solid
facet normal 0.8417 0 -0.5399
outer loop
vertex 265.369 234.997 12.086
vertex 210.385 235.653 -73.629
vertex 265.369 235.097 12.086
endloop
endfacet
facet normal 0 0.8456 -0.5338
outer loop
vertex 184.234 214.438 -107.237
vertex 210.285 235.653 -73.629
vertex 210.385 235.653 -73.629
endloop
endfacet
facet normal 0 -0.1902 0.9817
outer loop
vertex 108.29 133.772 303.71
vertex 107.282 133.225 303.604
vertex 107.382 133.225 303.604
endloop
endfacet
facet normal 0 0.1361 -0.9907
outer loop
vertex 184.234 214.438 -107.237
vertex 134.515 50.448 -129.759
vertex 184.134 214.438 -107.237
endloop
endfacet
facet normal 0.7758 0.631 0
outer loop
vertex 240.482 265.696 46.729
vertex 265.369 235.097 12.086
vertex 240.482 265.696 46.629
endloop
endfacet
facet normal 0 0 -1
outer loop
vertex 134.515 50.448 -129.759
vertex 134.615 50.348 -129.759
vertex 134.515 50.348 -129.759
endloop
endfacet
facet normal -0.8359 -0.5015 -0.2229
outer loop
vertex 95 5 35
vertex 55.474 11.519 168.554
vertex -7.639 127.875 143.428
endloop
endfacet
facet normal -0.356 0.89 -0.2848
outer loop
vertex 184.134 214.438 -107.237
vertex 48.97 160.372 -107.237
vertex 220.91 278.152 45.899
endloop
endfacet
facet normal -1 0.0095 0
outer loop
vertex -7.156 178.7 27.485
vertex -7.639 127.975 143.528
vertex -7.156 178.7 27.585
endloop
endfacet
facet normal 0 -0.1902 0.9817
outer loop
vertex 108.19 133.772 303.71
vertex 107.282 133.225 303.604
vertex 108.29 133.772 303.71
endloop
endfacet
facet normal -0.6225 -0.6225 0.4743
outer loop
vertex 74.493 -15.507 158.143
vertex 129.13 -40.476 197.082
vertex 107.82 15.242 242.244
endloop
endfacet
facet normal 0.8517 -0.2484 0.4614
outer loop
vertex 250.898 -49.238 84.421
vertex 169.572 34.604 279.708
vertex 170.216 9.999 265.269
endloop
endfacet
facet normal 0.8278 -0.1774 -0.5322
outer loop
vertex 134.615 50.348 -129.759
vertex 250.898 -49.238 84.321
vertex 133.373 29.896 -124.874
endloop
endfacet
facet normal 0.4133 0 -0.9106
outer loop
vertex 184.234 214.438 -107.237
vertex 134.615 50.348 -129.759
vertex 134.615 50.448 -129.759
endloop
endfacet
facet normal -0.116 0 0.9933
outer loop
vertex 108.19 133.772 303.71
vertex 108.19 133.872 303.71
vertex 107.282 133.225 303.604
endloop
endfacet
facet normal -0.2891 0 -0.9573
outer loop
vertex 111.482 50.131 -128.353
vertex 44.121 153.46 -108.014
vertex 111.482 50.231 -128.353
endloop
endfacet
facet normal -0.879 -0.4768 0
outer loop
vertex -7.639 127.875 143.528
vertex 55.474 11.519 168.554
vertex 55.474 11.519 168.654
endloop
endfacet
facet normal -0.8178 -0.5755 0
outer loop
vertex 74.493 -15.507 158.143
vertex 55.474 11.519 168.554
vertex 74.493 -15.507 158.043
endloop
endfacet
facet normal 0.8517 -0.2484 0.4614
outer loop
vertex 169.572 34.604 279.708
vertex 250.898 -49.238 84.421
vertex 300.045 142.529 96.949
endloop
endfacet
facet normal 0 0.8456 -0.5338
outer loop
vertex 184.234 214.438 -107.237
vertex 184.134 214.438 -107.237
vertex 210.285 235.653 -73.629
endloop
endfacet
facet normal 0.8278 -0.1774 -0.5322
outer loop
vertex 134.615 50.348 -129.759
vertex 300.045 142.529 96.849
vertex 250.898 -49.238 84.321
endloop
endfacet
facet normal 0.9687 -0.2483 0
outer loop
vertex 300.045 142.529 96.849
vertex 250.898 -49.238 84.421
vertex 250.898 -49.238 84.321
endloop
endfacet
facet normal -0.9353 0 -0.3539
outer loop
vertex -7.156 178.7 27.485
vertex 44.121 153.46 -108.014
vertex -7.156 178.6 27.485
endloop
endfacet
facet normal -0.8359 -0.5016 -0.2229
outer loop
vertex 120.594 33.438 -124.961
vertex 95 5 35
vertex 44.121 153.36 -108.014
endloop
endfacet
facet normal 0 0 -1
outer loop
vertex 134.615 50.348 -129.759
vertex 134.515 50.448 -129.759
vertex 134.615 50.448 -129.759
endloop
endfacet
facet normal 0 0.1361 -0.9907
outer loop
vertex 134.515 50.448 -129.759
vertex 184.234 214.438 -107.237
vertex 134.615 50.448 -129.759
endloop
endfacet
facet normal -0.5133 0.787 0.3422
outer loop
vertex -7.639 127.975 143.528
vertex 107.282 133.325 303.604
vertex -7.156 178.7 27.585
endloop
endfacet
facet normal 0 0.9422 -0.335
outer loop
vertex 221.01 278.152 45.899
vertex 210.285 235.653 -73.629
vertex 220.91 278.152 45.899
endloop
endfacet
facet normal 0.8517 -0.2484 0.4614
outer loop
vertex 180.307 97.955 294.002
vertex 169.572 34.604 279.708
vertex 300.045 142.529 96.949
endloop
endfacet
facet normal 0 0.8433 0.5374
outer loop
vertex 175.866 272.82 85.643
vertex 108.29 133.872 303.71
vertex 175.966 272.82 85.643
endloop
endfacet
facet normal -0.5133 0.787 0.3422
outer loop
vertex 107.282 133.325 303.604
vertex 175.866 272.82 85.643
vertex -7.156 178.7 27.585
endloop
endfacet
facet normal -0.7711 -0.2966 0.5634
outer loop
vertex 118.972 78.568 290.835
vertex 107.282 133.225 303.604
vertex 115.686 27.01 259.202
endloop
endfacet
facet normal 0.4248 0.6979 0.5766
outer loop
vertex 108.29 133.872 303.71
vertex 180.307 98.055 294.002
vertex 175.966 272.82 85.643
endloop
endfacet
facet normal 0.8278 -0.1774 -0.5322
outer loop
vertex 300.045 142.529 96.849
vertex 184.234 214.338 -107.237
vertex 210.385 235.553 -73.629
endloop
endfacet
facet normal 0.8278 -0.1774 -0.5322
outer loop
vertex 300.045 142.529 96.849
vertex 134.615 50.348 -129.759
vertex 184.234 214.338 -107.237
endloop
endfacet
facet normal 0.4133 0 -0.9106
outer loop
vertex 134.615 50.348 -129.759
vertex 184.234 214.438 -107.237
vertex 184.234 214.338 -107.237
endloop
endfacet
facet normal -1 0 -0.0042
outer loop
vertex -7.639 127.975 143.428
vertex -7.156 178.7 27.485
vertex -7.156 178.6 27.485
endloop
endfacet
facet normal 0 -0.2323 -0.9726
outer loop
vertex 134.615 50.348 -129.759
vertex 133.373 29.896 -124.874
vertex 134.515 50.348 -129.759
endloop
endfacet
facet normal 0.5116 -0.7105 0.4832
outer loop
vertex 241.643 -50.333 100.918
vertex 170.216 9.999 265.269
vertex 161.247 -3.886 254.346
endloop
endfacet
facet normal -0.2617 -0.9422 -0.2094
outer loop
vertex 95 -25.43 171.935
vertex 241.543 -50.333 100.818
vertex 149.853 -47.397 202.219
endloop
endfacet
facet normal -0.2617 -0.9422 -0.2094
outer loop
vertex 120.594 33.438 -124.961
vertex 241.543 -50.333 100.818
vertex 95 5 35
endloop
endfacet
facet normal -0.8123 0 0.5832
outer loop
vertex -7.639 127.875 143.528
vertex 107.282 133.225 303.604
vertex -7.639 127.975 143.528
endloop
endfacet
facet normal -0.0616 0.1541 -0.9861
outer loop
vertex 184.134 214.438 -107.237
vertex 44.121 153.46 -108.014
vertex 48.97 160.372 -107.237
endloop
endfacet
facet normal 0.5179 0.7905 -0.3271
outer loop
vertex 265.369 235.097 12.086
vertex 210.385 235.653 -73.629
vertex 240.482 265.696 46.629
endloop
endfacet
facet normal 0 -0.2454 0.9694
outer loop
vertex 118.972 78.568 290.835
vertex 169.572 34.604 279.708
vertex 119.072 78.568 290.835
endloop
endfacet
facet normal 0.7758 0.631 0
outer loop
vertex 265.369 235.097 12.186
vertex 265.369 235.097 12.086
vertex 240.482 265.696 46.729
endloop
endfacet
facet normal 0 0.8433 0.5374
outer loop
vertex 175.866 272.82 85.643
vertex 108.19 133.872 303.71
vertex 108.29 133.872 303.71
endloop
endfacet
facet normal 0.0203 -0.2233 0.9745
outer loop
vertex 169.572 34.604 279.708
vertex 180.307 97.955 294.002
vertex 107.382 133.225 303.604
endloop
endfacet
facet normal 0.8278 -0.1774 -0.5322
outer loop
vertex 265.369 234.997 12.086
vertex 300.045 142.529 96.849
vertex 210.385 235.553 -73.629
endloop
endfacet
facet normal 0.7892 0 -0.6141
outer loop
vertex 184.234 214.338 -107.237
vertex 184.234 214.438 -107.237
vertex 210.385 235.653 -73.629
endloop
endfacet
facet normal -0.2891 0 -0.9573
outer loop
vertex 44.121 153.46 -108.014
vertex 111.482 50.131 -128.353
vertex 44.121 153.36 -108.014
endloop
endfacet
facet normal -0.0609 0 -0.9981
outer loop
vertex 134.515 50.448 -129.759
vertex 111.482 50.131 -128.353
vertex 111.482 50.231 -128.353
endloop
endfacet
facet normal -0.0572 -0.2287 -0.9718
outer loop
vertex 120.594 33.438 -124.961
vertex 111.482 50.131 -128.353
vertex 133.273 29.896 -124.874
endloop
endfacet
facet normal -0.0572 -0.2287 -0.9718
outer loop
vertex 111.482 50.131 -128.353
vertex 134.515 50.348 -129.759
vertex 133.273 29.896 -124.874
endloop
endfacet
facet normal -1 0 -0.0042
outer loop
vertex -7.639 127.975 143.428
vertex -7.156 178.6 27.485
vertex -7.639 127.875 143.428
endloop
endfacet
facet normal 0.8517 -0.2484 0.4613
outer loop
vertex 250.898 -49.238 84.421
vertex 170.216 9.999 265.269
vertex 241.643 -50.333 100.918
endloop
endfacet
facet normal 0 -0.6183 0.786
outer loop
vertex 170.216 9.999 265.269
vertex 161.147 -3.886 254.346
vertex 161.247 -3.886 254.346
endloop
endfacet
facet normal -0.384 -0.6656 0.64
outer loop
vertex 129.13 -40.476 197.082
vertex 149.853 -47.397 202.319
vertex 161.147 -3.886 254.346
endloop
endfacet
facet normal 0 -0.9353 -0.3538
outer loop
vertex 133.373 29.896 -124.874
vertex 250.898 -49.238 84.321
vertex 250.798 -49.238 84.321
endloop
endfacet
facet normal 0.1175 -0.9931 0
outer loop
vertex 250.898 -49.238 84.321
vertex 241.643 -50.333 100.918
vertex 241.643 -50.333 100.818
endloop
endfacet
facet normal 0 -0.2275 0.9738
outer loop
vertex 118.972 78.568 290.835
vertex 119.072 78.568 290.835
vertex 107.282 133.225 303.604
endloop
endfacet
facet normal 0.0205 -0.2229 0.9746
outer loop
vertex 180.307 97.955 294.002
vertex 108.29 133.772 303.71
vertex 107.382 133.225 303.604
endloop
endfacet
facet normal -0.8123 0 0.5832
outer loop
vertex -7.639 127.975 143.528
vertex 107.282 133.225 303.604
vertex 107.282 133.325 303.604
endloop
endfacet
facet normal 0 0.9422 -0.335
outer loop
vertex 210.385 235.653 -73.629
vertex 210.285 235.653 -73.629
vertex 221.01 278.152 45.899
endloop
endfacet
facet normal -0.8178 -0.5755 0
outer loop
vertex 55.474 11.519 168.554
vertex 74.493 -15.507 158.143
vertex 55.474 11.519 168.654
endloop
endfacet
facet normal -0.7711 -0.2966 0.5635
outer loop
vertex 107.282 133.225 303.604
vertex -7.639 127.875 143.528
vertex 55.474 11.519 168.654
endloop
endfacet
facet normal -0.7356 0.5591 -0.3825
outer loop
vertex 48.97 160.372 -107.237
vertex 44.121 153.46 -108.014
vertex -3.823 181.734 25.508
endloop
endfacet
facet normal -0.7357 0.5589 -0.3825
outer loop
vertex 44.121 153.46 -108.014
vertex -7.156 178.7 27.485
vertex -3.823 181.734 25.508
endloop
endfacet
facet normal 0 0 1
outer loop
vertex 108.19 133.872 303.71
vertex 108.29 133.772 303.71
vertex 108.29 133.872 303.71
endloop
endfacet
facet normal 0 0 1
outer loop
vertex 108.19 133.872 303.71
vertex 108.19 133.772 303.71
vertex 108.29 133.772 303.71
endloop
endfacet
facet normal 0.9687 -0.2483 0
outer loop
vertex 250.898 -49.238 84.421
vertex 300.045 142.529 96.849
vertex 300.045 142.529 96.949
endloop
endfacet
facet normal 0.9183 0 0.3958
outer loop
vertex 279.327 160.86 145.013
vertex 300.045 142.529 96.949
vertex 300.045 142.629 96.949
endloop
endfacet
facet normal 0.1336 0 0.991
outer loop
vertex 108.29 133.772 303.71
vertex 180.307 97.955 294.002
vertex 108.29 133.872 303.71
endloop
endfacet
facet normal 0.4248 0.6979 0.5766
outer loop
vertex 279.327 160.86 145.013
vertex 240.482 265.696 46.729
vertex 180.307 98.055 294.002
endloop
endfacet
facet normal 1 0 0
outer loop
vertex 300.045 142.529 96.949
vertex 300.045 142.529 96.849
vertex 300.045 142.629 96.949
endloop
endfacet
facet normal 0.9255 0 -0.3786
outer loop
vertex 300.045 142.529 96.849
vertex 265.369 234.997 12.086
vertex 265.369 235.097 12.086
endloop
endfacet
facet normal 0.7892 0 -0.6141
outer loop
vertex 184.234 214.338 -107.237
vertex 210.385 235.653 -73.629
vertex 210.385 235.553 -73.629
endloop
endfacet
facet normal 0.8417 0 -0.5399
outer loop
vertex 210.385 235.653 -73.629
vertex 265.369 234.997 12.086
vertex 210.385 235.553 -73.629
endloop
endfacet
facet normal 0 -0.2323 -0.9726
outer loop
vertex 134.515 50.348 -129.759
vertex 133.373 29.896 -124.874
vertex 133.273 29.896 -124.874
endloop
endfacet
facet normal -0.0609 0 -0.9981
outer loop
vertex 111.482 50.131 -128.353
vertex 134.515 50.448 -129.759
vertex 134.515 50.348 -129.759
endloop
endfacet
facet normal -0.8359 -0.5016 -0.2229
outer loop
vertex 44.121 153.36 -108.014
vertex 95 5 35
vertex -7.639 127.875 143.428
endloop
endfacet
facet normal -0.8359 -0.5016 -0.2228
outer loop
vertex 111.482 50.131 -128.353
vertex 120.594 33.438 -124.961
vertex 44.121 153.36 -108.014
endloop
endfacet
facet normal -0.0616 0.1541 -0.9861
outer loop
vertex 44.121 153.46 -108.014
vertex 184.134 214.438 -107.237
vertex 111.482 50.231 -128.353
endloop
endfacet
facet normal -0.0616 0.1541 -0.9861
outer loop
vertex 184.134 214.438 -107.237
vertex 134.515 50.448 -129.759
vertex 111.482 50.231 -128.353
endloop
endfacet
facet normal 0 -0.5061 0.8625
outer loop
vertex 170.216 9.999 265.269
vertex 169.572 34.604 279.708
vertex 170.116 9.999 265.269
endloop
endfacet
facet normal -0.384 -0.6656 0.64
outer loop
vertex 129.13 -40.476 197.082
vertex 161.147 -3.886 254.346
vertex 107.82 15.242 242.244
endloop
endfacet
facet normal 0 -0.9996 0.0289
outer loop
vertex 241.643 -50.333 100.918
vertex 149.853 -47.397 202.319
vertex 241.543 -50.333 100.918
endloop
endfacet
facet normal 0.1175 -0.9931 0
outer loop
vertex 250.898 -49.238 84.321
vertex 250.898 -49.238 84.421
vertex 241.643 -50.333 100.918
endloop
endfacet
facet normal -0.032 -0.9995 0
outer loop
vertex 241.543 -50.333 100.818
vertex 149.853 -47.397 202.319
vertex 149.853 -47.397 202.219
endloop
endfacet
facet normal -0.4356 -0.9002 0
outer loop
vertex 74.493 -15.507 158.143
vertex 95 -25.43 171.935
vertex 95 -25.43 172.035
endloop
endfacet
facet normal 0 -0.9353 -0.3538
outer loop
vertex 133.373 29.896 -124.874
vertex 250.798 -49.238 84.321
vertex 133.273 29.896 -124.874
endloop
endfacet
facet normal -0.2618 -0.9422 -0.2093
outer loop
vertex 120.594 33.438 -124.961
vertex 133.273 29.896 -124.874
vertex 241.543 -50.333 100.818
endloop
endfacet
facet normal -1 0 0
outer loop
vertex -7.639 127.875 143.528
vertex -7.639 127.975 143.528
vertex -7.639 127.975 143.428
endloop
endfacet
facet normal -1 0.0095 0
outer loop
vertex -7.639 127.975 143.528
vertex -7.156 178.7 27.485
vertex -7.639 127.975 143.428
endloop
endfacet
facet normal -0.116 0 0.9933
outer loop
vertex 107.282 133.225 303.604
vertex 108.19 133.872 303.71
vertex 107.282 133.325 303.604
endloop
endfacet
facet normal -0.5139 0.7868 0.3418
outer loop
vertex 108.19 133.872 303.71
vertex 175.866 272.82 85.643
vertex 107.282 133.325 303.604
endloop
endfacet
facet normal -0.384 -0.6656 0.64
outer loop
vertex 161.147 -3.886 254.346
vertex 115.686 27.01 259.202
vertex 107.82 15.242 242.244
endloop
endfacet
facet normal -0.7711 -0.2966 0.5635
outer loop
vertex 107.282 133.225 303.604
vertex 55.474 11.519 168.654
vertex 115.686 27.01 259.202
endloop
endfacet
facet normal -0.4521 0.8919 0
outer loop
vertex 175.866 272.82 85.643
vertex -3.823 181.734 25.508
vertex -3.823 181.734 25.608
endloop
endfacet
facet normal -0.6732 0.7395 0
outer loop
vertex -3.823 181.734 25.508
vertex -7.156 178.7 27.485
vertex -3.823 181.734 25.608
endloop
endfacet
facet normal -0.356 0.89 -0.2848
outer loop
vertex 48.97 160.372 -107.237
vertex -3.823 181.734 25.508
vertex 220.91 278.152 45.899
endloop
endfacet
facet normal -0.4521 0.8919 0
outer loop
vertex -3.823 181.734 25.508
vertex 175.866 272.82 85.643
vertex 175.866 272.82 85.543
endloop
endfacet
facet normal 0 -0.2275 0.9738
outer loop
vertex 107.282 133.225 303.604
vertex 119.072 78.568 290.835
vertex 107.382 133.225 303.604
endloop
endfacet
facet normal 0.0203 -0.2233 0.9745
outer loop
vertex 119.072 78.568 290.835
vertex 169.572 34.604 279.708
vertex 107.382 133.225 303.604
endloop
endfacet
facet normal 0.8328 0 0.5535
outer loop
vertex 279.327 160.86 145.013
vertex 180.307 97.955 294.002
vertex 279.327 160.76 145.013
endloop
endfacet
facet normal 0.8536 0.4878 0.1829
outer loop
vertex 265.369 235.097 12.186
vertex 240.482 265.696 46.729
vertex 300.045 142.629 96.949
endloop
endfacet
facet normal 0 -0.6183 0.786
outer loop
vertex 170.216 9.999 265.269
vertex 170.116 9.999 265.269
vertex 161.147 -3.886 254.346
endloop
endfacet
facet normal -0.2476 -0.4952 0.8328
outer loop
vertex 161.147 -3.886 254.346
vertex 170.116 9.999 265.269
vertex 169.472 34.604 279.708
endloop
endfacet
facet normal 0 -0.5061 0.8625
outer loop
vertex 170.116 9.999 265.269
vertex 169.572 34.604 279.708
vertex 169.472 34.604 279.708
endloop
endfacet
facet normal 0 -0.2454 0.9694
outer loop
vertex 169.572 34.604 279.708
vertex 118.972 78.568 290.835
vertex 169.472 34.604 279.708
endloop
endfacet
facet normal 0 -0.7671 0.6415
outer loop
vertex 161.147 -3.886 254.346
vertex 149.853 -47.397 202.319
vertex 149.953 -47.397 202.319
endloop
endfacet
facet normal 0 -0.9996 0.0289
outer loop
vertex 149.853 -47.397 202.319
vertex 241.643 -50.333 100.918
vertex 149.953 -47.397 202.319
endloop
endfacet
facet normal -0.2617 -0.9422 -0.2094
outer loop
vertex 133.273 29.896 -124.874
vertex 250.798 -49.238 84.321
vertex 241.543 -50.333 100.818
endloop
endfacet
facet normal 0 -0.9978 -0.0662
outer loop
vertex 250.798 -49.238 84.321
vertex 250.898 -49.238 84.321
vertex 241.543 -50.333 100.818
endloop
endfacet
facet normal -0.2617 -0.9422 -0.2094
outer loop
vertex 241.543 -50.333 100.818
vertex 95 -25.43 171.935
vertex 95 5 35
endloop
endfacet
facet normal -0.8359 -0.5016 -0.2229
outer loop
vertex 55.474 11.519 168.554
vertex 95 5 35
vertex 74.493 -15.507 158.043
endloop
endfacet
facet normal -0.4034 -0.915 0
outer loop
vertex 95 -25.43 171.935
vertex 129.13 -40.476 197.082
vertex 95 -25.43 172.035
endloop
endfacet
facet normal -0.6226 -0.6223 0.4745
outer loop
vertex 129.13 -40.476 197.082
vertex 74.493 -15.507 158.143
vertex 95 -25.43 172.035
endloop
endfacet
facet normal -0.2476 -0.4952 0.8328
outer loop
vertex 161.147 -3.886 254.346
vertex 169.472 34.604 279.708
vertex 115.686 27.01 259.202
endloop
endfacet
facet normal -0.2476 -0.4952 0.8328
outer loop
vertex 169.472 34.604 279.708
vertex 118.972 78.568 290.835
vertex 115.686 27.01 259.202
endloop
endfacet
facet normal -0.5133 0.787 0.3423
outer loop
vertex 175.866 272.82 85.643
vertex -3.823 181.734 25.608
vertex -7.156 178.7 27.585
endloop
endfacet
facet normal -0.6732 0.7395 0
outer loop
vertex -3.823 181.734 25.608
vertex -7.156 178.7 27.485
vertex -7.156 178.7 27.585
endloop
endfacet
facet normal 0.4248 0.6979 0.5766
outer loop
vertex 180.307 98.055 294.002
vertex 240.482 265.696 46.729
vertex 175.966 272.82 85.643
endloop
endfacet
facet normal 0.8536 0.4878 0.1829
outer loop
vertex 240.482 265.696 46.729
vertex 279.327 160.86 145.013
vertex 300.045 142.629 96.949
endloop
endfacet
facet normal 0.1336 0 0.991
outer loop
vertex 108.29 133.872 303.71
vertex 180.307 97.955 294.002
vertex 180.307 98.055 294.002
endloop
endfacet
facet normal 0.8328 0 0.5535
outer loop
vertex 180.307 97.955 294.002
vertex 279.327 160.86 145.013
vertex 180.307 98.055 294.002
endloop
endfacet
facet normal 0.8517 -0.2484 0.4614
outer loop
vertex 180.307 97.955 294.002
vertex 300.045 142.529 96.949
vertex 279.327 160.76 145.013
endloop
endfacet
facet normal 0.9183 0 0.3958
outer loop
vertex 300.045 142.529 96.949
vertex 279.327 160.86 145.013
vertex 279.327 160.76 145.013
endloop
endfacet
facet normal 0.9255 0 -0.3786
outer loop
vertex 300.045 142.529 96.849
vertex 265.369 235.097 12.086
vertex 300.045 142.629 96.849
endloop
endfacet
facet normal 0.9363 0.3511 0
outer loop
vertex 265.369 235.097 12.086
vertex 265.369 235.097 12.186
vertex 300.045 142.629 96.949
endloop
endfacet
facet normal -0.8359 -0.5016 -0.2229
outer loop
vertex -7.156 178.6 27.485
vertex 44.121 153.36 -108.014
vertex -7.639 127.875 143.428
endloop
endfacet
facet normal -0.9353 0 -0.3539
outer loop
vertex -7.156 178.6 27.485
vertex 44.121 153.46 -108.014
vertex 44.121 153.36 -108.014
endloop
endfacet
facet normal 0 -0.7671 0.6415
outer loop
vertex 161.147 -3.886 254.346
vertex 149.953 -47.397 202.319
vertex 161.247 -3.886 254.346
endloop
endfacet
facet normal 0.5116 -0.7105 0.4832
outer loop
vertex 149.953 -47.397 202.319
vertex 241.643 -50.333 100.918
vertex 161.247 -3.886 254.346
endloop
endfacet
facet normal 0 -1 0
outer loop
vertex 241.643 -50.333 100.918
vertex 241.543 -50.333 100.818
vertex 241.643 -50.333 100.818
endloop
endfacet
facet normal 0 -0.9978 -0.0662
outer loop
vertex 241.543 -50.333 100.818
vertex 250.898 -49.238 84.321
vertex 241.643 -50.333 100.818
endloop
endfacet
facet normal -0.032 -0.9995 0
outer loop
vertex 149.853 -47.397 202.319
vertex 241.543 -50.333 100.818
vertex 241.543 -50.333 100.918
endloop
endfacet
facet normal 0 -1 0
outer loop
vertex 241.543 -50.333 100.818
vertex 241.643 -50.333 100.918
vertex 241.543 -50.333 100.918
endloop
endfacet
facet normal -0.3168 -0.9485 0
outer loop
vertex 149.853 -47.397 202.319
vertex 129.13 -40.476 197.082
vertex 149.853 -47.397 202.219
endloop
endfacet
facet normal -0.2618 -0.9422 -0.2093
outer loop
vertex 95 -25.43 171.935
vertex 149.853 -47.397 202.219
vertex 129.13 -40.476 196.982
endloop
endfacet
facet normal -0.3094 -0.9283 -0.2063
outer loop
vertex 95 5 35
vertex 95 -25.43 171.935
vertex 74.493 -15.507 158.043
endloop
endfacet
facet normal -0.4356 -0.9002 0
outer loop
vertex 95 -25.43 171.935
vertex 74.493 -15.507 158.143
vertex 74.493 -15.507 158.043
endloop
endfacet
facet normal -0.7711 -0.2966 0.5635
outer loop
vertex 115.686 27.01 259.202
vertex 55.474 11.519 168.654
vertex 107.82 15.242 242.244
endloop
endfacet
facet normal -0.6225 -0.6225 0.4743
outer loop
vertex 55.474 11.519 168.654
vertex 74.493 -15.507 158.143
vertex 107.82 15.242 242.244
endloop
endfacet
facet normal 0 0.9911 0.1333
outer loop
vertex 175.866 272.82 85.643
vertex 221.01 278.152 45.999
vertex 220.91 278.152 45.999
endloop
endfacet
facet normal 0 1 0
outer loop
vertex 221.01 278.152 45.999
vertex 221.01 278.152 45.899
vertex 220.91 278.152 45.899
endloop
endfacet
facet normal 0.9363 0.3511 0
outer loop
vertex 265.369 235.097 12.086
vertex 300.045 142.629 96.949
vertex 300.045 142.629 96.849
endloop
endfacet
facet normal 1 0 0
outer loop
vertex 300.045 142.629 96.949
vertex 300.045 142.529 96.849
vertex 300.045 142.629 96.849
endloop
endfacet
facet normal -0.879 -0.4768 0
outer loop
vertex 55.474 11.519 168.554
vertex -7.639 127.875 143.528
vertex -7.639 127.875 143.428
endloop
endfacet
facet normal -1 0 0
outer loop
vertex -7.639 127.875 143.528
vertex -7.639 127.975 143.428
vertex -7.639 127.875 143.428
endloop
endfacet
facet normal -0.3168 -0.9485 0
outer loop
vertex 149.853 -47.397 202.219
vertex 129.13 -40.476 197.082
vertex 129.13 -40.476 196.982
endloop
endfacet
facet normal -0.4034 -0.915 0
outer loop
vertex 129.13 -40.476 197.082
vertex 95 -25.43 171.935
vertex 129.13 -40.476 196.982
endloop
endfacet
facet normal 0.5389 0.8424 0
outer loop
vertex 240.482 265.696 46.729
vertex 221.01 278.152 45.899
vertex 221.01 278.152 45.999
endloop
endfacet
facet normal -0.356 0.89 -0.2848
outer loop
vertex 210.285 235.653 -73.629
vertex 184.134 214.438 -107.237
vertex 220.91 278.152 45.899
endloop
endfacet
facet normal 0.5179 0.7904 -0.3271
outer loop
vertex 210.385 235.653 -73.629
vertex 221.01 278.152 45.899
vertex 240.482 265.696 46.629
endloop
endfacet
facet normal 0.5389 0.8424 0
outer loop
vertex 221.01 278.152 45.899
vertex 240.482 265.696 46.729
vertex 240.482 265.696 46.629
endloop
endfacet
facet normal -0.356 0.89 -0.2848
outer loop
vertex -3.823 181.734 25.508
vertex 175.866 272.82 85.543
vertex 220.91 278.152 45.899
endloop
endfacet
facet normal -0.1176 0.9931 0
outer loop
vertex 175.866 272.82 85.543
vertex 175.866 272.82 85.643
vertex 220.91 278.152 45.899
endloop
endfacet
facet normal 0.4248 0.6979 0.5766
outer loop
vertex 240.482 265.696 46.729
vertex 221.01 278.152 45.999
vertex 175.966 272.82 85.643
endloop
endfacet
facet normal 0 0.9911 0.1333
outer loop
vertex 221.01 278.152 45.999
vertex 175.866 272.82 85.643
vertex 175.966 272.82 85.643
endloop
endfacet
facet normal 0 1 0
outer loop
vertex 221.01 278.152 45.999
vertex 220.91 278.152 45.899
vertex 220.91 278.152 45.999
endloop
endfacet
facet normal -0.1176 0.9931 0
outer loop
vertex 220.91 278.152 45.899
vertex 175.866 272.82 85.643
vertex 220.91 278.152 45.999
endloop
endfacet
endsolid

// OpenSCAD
hull(){ translate([265.268875611,234.997284085,12.0858229223])cube(0.1,0.1,0.1);
translate([299.9445629,142.528784648,96.8486140725])cube(0.1,0.1,0.1);
translate([180.206618909,97.9551240305,293.90207803])cube(0.1,0.1,0.1);
translate([279.227344992,160.759936407,144.912559618])cube(0.1,0.1,0.1);
translate([240.381771744,265.596182283,46.6285791101])cube(0.1,0.1,0.1);
translate([169.472046175,34.6044590312,279.607854233])cube(0.1,0.1,0.1);
translate([108.189891459,133.771516281,303.610349742])cube(0.1,0.1,0.1);
translate([170.116424637,9.99874812218,265.169003505])cube(0.1,0.1,0.1);
translate([161.147205151,-3.88645010243,254.246414984])cube(0.1,0.1,0.1);
translate([175.866028364,272.720106544,85.5427974948])cube(0.1,0.1,0.1);
translate([220.909948029,278.051556823,45.898680035])cube(0.1,0.1,0.1);
translate([210.285227441,235.55267447,-73.6294265817])cube(0.1,0.1,0.1);
translate([118.972455348,78.5678932645,290.73488272])cube(0.1,0.1,0.1);
translate([107.281701045,133.225405077,303.504119892])cube(0.1,0.1,0.1);
translate([115.685871056,27.0096021948,259.101508916])cube(0.1,0.1,0.1);
translate([107.819574663,15.2423965241,242.143837183])cube(0.1,0.1,0.1);
translate([-7.63928317956,127.875266146,143.427963094])cube(0.1,0.1,0.1);
translate([55.474222747,11.5190869736,168.553719008])cube(0.1,0.1,0.1);
translate([184.134457237,214.337993421,-107.236842105])cube(0.1,0.1,0.1);
translate([129.129606099,-40.4764930114,196.982210928])cube(0.1,0.1,0.1);
translate([149.853036461,-47.3967721034,202.219178889])cube(0.1,0.1,0.1);
translate([250.79840576,-49.2375932116,84.3211622525])cube(0.1,0.1,0.1);
translate([241.543271636,-50.3326663332,100.817908954])cube(0.1,0.1,0.1);
translate([134.515033948,50.3475590042,-129.759133527])cube(0.1,0.1,0.1);
translate([133.273045508,29.8961493582,-124.873978996])cube(0.1,0.1,0.1);
translate([111.48212591,50.1312875672,-128.353369187])cube(0.1,0.1,0.1);
translate([120.593827501,33.4375861119,-124.961421879])cube(0.1,0.1,0.1);
translate([44.1209004463,153.360178537,-108.013778382])cube(0.1,0.1,0.1);
translate([48.9700544465,160.272232305,-107.236842105])cube(0.1,0.1,0.1);
translate([-7.15618860511,178.600196464,27.4852652259])cube(0.1,0.1,0.1);
translate([-3.82291057861,181.633547633,25.5084745763])cube(0.1,0.1,0.1);
translate([74.4927536232,-15.5072463768,158.043478261])cube(0.1,0.1,0.1);
translate([95.0,5.0,35.0])cube(0.1,0.1,0.1);
translate([95.0,-25.4301075269,171.935483871])cube(0.1,0.1,0.1); }
